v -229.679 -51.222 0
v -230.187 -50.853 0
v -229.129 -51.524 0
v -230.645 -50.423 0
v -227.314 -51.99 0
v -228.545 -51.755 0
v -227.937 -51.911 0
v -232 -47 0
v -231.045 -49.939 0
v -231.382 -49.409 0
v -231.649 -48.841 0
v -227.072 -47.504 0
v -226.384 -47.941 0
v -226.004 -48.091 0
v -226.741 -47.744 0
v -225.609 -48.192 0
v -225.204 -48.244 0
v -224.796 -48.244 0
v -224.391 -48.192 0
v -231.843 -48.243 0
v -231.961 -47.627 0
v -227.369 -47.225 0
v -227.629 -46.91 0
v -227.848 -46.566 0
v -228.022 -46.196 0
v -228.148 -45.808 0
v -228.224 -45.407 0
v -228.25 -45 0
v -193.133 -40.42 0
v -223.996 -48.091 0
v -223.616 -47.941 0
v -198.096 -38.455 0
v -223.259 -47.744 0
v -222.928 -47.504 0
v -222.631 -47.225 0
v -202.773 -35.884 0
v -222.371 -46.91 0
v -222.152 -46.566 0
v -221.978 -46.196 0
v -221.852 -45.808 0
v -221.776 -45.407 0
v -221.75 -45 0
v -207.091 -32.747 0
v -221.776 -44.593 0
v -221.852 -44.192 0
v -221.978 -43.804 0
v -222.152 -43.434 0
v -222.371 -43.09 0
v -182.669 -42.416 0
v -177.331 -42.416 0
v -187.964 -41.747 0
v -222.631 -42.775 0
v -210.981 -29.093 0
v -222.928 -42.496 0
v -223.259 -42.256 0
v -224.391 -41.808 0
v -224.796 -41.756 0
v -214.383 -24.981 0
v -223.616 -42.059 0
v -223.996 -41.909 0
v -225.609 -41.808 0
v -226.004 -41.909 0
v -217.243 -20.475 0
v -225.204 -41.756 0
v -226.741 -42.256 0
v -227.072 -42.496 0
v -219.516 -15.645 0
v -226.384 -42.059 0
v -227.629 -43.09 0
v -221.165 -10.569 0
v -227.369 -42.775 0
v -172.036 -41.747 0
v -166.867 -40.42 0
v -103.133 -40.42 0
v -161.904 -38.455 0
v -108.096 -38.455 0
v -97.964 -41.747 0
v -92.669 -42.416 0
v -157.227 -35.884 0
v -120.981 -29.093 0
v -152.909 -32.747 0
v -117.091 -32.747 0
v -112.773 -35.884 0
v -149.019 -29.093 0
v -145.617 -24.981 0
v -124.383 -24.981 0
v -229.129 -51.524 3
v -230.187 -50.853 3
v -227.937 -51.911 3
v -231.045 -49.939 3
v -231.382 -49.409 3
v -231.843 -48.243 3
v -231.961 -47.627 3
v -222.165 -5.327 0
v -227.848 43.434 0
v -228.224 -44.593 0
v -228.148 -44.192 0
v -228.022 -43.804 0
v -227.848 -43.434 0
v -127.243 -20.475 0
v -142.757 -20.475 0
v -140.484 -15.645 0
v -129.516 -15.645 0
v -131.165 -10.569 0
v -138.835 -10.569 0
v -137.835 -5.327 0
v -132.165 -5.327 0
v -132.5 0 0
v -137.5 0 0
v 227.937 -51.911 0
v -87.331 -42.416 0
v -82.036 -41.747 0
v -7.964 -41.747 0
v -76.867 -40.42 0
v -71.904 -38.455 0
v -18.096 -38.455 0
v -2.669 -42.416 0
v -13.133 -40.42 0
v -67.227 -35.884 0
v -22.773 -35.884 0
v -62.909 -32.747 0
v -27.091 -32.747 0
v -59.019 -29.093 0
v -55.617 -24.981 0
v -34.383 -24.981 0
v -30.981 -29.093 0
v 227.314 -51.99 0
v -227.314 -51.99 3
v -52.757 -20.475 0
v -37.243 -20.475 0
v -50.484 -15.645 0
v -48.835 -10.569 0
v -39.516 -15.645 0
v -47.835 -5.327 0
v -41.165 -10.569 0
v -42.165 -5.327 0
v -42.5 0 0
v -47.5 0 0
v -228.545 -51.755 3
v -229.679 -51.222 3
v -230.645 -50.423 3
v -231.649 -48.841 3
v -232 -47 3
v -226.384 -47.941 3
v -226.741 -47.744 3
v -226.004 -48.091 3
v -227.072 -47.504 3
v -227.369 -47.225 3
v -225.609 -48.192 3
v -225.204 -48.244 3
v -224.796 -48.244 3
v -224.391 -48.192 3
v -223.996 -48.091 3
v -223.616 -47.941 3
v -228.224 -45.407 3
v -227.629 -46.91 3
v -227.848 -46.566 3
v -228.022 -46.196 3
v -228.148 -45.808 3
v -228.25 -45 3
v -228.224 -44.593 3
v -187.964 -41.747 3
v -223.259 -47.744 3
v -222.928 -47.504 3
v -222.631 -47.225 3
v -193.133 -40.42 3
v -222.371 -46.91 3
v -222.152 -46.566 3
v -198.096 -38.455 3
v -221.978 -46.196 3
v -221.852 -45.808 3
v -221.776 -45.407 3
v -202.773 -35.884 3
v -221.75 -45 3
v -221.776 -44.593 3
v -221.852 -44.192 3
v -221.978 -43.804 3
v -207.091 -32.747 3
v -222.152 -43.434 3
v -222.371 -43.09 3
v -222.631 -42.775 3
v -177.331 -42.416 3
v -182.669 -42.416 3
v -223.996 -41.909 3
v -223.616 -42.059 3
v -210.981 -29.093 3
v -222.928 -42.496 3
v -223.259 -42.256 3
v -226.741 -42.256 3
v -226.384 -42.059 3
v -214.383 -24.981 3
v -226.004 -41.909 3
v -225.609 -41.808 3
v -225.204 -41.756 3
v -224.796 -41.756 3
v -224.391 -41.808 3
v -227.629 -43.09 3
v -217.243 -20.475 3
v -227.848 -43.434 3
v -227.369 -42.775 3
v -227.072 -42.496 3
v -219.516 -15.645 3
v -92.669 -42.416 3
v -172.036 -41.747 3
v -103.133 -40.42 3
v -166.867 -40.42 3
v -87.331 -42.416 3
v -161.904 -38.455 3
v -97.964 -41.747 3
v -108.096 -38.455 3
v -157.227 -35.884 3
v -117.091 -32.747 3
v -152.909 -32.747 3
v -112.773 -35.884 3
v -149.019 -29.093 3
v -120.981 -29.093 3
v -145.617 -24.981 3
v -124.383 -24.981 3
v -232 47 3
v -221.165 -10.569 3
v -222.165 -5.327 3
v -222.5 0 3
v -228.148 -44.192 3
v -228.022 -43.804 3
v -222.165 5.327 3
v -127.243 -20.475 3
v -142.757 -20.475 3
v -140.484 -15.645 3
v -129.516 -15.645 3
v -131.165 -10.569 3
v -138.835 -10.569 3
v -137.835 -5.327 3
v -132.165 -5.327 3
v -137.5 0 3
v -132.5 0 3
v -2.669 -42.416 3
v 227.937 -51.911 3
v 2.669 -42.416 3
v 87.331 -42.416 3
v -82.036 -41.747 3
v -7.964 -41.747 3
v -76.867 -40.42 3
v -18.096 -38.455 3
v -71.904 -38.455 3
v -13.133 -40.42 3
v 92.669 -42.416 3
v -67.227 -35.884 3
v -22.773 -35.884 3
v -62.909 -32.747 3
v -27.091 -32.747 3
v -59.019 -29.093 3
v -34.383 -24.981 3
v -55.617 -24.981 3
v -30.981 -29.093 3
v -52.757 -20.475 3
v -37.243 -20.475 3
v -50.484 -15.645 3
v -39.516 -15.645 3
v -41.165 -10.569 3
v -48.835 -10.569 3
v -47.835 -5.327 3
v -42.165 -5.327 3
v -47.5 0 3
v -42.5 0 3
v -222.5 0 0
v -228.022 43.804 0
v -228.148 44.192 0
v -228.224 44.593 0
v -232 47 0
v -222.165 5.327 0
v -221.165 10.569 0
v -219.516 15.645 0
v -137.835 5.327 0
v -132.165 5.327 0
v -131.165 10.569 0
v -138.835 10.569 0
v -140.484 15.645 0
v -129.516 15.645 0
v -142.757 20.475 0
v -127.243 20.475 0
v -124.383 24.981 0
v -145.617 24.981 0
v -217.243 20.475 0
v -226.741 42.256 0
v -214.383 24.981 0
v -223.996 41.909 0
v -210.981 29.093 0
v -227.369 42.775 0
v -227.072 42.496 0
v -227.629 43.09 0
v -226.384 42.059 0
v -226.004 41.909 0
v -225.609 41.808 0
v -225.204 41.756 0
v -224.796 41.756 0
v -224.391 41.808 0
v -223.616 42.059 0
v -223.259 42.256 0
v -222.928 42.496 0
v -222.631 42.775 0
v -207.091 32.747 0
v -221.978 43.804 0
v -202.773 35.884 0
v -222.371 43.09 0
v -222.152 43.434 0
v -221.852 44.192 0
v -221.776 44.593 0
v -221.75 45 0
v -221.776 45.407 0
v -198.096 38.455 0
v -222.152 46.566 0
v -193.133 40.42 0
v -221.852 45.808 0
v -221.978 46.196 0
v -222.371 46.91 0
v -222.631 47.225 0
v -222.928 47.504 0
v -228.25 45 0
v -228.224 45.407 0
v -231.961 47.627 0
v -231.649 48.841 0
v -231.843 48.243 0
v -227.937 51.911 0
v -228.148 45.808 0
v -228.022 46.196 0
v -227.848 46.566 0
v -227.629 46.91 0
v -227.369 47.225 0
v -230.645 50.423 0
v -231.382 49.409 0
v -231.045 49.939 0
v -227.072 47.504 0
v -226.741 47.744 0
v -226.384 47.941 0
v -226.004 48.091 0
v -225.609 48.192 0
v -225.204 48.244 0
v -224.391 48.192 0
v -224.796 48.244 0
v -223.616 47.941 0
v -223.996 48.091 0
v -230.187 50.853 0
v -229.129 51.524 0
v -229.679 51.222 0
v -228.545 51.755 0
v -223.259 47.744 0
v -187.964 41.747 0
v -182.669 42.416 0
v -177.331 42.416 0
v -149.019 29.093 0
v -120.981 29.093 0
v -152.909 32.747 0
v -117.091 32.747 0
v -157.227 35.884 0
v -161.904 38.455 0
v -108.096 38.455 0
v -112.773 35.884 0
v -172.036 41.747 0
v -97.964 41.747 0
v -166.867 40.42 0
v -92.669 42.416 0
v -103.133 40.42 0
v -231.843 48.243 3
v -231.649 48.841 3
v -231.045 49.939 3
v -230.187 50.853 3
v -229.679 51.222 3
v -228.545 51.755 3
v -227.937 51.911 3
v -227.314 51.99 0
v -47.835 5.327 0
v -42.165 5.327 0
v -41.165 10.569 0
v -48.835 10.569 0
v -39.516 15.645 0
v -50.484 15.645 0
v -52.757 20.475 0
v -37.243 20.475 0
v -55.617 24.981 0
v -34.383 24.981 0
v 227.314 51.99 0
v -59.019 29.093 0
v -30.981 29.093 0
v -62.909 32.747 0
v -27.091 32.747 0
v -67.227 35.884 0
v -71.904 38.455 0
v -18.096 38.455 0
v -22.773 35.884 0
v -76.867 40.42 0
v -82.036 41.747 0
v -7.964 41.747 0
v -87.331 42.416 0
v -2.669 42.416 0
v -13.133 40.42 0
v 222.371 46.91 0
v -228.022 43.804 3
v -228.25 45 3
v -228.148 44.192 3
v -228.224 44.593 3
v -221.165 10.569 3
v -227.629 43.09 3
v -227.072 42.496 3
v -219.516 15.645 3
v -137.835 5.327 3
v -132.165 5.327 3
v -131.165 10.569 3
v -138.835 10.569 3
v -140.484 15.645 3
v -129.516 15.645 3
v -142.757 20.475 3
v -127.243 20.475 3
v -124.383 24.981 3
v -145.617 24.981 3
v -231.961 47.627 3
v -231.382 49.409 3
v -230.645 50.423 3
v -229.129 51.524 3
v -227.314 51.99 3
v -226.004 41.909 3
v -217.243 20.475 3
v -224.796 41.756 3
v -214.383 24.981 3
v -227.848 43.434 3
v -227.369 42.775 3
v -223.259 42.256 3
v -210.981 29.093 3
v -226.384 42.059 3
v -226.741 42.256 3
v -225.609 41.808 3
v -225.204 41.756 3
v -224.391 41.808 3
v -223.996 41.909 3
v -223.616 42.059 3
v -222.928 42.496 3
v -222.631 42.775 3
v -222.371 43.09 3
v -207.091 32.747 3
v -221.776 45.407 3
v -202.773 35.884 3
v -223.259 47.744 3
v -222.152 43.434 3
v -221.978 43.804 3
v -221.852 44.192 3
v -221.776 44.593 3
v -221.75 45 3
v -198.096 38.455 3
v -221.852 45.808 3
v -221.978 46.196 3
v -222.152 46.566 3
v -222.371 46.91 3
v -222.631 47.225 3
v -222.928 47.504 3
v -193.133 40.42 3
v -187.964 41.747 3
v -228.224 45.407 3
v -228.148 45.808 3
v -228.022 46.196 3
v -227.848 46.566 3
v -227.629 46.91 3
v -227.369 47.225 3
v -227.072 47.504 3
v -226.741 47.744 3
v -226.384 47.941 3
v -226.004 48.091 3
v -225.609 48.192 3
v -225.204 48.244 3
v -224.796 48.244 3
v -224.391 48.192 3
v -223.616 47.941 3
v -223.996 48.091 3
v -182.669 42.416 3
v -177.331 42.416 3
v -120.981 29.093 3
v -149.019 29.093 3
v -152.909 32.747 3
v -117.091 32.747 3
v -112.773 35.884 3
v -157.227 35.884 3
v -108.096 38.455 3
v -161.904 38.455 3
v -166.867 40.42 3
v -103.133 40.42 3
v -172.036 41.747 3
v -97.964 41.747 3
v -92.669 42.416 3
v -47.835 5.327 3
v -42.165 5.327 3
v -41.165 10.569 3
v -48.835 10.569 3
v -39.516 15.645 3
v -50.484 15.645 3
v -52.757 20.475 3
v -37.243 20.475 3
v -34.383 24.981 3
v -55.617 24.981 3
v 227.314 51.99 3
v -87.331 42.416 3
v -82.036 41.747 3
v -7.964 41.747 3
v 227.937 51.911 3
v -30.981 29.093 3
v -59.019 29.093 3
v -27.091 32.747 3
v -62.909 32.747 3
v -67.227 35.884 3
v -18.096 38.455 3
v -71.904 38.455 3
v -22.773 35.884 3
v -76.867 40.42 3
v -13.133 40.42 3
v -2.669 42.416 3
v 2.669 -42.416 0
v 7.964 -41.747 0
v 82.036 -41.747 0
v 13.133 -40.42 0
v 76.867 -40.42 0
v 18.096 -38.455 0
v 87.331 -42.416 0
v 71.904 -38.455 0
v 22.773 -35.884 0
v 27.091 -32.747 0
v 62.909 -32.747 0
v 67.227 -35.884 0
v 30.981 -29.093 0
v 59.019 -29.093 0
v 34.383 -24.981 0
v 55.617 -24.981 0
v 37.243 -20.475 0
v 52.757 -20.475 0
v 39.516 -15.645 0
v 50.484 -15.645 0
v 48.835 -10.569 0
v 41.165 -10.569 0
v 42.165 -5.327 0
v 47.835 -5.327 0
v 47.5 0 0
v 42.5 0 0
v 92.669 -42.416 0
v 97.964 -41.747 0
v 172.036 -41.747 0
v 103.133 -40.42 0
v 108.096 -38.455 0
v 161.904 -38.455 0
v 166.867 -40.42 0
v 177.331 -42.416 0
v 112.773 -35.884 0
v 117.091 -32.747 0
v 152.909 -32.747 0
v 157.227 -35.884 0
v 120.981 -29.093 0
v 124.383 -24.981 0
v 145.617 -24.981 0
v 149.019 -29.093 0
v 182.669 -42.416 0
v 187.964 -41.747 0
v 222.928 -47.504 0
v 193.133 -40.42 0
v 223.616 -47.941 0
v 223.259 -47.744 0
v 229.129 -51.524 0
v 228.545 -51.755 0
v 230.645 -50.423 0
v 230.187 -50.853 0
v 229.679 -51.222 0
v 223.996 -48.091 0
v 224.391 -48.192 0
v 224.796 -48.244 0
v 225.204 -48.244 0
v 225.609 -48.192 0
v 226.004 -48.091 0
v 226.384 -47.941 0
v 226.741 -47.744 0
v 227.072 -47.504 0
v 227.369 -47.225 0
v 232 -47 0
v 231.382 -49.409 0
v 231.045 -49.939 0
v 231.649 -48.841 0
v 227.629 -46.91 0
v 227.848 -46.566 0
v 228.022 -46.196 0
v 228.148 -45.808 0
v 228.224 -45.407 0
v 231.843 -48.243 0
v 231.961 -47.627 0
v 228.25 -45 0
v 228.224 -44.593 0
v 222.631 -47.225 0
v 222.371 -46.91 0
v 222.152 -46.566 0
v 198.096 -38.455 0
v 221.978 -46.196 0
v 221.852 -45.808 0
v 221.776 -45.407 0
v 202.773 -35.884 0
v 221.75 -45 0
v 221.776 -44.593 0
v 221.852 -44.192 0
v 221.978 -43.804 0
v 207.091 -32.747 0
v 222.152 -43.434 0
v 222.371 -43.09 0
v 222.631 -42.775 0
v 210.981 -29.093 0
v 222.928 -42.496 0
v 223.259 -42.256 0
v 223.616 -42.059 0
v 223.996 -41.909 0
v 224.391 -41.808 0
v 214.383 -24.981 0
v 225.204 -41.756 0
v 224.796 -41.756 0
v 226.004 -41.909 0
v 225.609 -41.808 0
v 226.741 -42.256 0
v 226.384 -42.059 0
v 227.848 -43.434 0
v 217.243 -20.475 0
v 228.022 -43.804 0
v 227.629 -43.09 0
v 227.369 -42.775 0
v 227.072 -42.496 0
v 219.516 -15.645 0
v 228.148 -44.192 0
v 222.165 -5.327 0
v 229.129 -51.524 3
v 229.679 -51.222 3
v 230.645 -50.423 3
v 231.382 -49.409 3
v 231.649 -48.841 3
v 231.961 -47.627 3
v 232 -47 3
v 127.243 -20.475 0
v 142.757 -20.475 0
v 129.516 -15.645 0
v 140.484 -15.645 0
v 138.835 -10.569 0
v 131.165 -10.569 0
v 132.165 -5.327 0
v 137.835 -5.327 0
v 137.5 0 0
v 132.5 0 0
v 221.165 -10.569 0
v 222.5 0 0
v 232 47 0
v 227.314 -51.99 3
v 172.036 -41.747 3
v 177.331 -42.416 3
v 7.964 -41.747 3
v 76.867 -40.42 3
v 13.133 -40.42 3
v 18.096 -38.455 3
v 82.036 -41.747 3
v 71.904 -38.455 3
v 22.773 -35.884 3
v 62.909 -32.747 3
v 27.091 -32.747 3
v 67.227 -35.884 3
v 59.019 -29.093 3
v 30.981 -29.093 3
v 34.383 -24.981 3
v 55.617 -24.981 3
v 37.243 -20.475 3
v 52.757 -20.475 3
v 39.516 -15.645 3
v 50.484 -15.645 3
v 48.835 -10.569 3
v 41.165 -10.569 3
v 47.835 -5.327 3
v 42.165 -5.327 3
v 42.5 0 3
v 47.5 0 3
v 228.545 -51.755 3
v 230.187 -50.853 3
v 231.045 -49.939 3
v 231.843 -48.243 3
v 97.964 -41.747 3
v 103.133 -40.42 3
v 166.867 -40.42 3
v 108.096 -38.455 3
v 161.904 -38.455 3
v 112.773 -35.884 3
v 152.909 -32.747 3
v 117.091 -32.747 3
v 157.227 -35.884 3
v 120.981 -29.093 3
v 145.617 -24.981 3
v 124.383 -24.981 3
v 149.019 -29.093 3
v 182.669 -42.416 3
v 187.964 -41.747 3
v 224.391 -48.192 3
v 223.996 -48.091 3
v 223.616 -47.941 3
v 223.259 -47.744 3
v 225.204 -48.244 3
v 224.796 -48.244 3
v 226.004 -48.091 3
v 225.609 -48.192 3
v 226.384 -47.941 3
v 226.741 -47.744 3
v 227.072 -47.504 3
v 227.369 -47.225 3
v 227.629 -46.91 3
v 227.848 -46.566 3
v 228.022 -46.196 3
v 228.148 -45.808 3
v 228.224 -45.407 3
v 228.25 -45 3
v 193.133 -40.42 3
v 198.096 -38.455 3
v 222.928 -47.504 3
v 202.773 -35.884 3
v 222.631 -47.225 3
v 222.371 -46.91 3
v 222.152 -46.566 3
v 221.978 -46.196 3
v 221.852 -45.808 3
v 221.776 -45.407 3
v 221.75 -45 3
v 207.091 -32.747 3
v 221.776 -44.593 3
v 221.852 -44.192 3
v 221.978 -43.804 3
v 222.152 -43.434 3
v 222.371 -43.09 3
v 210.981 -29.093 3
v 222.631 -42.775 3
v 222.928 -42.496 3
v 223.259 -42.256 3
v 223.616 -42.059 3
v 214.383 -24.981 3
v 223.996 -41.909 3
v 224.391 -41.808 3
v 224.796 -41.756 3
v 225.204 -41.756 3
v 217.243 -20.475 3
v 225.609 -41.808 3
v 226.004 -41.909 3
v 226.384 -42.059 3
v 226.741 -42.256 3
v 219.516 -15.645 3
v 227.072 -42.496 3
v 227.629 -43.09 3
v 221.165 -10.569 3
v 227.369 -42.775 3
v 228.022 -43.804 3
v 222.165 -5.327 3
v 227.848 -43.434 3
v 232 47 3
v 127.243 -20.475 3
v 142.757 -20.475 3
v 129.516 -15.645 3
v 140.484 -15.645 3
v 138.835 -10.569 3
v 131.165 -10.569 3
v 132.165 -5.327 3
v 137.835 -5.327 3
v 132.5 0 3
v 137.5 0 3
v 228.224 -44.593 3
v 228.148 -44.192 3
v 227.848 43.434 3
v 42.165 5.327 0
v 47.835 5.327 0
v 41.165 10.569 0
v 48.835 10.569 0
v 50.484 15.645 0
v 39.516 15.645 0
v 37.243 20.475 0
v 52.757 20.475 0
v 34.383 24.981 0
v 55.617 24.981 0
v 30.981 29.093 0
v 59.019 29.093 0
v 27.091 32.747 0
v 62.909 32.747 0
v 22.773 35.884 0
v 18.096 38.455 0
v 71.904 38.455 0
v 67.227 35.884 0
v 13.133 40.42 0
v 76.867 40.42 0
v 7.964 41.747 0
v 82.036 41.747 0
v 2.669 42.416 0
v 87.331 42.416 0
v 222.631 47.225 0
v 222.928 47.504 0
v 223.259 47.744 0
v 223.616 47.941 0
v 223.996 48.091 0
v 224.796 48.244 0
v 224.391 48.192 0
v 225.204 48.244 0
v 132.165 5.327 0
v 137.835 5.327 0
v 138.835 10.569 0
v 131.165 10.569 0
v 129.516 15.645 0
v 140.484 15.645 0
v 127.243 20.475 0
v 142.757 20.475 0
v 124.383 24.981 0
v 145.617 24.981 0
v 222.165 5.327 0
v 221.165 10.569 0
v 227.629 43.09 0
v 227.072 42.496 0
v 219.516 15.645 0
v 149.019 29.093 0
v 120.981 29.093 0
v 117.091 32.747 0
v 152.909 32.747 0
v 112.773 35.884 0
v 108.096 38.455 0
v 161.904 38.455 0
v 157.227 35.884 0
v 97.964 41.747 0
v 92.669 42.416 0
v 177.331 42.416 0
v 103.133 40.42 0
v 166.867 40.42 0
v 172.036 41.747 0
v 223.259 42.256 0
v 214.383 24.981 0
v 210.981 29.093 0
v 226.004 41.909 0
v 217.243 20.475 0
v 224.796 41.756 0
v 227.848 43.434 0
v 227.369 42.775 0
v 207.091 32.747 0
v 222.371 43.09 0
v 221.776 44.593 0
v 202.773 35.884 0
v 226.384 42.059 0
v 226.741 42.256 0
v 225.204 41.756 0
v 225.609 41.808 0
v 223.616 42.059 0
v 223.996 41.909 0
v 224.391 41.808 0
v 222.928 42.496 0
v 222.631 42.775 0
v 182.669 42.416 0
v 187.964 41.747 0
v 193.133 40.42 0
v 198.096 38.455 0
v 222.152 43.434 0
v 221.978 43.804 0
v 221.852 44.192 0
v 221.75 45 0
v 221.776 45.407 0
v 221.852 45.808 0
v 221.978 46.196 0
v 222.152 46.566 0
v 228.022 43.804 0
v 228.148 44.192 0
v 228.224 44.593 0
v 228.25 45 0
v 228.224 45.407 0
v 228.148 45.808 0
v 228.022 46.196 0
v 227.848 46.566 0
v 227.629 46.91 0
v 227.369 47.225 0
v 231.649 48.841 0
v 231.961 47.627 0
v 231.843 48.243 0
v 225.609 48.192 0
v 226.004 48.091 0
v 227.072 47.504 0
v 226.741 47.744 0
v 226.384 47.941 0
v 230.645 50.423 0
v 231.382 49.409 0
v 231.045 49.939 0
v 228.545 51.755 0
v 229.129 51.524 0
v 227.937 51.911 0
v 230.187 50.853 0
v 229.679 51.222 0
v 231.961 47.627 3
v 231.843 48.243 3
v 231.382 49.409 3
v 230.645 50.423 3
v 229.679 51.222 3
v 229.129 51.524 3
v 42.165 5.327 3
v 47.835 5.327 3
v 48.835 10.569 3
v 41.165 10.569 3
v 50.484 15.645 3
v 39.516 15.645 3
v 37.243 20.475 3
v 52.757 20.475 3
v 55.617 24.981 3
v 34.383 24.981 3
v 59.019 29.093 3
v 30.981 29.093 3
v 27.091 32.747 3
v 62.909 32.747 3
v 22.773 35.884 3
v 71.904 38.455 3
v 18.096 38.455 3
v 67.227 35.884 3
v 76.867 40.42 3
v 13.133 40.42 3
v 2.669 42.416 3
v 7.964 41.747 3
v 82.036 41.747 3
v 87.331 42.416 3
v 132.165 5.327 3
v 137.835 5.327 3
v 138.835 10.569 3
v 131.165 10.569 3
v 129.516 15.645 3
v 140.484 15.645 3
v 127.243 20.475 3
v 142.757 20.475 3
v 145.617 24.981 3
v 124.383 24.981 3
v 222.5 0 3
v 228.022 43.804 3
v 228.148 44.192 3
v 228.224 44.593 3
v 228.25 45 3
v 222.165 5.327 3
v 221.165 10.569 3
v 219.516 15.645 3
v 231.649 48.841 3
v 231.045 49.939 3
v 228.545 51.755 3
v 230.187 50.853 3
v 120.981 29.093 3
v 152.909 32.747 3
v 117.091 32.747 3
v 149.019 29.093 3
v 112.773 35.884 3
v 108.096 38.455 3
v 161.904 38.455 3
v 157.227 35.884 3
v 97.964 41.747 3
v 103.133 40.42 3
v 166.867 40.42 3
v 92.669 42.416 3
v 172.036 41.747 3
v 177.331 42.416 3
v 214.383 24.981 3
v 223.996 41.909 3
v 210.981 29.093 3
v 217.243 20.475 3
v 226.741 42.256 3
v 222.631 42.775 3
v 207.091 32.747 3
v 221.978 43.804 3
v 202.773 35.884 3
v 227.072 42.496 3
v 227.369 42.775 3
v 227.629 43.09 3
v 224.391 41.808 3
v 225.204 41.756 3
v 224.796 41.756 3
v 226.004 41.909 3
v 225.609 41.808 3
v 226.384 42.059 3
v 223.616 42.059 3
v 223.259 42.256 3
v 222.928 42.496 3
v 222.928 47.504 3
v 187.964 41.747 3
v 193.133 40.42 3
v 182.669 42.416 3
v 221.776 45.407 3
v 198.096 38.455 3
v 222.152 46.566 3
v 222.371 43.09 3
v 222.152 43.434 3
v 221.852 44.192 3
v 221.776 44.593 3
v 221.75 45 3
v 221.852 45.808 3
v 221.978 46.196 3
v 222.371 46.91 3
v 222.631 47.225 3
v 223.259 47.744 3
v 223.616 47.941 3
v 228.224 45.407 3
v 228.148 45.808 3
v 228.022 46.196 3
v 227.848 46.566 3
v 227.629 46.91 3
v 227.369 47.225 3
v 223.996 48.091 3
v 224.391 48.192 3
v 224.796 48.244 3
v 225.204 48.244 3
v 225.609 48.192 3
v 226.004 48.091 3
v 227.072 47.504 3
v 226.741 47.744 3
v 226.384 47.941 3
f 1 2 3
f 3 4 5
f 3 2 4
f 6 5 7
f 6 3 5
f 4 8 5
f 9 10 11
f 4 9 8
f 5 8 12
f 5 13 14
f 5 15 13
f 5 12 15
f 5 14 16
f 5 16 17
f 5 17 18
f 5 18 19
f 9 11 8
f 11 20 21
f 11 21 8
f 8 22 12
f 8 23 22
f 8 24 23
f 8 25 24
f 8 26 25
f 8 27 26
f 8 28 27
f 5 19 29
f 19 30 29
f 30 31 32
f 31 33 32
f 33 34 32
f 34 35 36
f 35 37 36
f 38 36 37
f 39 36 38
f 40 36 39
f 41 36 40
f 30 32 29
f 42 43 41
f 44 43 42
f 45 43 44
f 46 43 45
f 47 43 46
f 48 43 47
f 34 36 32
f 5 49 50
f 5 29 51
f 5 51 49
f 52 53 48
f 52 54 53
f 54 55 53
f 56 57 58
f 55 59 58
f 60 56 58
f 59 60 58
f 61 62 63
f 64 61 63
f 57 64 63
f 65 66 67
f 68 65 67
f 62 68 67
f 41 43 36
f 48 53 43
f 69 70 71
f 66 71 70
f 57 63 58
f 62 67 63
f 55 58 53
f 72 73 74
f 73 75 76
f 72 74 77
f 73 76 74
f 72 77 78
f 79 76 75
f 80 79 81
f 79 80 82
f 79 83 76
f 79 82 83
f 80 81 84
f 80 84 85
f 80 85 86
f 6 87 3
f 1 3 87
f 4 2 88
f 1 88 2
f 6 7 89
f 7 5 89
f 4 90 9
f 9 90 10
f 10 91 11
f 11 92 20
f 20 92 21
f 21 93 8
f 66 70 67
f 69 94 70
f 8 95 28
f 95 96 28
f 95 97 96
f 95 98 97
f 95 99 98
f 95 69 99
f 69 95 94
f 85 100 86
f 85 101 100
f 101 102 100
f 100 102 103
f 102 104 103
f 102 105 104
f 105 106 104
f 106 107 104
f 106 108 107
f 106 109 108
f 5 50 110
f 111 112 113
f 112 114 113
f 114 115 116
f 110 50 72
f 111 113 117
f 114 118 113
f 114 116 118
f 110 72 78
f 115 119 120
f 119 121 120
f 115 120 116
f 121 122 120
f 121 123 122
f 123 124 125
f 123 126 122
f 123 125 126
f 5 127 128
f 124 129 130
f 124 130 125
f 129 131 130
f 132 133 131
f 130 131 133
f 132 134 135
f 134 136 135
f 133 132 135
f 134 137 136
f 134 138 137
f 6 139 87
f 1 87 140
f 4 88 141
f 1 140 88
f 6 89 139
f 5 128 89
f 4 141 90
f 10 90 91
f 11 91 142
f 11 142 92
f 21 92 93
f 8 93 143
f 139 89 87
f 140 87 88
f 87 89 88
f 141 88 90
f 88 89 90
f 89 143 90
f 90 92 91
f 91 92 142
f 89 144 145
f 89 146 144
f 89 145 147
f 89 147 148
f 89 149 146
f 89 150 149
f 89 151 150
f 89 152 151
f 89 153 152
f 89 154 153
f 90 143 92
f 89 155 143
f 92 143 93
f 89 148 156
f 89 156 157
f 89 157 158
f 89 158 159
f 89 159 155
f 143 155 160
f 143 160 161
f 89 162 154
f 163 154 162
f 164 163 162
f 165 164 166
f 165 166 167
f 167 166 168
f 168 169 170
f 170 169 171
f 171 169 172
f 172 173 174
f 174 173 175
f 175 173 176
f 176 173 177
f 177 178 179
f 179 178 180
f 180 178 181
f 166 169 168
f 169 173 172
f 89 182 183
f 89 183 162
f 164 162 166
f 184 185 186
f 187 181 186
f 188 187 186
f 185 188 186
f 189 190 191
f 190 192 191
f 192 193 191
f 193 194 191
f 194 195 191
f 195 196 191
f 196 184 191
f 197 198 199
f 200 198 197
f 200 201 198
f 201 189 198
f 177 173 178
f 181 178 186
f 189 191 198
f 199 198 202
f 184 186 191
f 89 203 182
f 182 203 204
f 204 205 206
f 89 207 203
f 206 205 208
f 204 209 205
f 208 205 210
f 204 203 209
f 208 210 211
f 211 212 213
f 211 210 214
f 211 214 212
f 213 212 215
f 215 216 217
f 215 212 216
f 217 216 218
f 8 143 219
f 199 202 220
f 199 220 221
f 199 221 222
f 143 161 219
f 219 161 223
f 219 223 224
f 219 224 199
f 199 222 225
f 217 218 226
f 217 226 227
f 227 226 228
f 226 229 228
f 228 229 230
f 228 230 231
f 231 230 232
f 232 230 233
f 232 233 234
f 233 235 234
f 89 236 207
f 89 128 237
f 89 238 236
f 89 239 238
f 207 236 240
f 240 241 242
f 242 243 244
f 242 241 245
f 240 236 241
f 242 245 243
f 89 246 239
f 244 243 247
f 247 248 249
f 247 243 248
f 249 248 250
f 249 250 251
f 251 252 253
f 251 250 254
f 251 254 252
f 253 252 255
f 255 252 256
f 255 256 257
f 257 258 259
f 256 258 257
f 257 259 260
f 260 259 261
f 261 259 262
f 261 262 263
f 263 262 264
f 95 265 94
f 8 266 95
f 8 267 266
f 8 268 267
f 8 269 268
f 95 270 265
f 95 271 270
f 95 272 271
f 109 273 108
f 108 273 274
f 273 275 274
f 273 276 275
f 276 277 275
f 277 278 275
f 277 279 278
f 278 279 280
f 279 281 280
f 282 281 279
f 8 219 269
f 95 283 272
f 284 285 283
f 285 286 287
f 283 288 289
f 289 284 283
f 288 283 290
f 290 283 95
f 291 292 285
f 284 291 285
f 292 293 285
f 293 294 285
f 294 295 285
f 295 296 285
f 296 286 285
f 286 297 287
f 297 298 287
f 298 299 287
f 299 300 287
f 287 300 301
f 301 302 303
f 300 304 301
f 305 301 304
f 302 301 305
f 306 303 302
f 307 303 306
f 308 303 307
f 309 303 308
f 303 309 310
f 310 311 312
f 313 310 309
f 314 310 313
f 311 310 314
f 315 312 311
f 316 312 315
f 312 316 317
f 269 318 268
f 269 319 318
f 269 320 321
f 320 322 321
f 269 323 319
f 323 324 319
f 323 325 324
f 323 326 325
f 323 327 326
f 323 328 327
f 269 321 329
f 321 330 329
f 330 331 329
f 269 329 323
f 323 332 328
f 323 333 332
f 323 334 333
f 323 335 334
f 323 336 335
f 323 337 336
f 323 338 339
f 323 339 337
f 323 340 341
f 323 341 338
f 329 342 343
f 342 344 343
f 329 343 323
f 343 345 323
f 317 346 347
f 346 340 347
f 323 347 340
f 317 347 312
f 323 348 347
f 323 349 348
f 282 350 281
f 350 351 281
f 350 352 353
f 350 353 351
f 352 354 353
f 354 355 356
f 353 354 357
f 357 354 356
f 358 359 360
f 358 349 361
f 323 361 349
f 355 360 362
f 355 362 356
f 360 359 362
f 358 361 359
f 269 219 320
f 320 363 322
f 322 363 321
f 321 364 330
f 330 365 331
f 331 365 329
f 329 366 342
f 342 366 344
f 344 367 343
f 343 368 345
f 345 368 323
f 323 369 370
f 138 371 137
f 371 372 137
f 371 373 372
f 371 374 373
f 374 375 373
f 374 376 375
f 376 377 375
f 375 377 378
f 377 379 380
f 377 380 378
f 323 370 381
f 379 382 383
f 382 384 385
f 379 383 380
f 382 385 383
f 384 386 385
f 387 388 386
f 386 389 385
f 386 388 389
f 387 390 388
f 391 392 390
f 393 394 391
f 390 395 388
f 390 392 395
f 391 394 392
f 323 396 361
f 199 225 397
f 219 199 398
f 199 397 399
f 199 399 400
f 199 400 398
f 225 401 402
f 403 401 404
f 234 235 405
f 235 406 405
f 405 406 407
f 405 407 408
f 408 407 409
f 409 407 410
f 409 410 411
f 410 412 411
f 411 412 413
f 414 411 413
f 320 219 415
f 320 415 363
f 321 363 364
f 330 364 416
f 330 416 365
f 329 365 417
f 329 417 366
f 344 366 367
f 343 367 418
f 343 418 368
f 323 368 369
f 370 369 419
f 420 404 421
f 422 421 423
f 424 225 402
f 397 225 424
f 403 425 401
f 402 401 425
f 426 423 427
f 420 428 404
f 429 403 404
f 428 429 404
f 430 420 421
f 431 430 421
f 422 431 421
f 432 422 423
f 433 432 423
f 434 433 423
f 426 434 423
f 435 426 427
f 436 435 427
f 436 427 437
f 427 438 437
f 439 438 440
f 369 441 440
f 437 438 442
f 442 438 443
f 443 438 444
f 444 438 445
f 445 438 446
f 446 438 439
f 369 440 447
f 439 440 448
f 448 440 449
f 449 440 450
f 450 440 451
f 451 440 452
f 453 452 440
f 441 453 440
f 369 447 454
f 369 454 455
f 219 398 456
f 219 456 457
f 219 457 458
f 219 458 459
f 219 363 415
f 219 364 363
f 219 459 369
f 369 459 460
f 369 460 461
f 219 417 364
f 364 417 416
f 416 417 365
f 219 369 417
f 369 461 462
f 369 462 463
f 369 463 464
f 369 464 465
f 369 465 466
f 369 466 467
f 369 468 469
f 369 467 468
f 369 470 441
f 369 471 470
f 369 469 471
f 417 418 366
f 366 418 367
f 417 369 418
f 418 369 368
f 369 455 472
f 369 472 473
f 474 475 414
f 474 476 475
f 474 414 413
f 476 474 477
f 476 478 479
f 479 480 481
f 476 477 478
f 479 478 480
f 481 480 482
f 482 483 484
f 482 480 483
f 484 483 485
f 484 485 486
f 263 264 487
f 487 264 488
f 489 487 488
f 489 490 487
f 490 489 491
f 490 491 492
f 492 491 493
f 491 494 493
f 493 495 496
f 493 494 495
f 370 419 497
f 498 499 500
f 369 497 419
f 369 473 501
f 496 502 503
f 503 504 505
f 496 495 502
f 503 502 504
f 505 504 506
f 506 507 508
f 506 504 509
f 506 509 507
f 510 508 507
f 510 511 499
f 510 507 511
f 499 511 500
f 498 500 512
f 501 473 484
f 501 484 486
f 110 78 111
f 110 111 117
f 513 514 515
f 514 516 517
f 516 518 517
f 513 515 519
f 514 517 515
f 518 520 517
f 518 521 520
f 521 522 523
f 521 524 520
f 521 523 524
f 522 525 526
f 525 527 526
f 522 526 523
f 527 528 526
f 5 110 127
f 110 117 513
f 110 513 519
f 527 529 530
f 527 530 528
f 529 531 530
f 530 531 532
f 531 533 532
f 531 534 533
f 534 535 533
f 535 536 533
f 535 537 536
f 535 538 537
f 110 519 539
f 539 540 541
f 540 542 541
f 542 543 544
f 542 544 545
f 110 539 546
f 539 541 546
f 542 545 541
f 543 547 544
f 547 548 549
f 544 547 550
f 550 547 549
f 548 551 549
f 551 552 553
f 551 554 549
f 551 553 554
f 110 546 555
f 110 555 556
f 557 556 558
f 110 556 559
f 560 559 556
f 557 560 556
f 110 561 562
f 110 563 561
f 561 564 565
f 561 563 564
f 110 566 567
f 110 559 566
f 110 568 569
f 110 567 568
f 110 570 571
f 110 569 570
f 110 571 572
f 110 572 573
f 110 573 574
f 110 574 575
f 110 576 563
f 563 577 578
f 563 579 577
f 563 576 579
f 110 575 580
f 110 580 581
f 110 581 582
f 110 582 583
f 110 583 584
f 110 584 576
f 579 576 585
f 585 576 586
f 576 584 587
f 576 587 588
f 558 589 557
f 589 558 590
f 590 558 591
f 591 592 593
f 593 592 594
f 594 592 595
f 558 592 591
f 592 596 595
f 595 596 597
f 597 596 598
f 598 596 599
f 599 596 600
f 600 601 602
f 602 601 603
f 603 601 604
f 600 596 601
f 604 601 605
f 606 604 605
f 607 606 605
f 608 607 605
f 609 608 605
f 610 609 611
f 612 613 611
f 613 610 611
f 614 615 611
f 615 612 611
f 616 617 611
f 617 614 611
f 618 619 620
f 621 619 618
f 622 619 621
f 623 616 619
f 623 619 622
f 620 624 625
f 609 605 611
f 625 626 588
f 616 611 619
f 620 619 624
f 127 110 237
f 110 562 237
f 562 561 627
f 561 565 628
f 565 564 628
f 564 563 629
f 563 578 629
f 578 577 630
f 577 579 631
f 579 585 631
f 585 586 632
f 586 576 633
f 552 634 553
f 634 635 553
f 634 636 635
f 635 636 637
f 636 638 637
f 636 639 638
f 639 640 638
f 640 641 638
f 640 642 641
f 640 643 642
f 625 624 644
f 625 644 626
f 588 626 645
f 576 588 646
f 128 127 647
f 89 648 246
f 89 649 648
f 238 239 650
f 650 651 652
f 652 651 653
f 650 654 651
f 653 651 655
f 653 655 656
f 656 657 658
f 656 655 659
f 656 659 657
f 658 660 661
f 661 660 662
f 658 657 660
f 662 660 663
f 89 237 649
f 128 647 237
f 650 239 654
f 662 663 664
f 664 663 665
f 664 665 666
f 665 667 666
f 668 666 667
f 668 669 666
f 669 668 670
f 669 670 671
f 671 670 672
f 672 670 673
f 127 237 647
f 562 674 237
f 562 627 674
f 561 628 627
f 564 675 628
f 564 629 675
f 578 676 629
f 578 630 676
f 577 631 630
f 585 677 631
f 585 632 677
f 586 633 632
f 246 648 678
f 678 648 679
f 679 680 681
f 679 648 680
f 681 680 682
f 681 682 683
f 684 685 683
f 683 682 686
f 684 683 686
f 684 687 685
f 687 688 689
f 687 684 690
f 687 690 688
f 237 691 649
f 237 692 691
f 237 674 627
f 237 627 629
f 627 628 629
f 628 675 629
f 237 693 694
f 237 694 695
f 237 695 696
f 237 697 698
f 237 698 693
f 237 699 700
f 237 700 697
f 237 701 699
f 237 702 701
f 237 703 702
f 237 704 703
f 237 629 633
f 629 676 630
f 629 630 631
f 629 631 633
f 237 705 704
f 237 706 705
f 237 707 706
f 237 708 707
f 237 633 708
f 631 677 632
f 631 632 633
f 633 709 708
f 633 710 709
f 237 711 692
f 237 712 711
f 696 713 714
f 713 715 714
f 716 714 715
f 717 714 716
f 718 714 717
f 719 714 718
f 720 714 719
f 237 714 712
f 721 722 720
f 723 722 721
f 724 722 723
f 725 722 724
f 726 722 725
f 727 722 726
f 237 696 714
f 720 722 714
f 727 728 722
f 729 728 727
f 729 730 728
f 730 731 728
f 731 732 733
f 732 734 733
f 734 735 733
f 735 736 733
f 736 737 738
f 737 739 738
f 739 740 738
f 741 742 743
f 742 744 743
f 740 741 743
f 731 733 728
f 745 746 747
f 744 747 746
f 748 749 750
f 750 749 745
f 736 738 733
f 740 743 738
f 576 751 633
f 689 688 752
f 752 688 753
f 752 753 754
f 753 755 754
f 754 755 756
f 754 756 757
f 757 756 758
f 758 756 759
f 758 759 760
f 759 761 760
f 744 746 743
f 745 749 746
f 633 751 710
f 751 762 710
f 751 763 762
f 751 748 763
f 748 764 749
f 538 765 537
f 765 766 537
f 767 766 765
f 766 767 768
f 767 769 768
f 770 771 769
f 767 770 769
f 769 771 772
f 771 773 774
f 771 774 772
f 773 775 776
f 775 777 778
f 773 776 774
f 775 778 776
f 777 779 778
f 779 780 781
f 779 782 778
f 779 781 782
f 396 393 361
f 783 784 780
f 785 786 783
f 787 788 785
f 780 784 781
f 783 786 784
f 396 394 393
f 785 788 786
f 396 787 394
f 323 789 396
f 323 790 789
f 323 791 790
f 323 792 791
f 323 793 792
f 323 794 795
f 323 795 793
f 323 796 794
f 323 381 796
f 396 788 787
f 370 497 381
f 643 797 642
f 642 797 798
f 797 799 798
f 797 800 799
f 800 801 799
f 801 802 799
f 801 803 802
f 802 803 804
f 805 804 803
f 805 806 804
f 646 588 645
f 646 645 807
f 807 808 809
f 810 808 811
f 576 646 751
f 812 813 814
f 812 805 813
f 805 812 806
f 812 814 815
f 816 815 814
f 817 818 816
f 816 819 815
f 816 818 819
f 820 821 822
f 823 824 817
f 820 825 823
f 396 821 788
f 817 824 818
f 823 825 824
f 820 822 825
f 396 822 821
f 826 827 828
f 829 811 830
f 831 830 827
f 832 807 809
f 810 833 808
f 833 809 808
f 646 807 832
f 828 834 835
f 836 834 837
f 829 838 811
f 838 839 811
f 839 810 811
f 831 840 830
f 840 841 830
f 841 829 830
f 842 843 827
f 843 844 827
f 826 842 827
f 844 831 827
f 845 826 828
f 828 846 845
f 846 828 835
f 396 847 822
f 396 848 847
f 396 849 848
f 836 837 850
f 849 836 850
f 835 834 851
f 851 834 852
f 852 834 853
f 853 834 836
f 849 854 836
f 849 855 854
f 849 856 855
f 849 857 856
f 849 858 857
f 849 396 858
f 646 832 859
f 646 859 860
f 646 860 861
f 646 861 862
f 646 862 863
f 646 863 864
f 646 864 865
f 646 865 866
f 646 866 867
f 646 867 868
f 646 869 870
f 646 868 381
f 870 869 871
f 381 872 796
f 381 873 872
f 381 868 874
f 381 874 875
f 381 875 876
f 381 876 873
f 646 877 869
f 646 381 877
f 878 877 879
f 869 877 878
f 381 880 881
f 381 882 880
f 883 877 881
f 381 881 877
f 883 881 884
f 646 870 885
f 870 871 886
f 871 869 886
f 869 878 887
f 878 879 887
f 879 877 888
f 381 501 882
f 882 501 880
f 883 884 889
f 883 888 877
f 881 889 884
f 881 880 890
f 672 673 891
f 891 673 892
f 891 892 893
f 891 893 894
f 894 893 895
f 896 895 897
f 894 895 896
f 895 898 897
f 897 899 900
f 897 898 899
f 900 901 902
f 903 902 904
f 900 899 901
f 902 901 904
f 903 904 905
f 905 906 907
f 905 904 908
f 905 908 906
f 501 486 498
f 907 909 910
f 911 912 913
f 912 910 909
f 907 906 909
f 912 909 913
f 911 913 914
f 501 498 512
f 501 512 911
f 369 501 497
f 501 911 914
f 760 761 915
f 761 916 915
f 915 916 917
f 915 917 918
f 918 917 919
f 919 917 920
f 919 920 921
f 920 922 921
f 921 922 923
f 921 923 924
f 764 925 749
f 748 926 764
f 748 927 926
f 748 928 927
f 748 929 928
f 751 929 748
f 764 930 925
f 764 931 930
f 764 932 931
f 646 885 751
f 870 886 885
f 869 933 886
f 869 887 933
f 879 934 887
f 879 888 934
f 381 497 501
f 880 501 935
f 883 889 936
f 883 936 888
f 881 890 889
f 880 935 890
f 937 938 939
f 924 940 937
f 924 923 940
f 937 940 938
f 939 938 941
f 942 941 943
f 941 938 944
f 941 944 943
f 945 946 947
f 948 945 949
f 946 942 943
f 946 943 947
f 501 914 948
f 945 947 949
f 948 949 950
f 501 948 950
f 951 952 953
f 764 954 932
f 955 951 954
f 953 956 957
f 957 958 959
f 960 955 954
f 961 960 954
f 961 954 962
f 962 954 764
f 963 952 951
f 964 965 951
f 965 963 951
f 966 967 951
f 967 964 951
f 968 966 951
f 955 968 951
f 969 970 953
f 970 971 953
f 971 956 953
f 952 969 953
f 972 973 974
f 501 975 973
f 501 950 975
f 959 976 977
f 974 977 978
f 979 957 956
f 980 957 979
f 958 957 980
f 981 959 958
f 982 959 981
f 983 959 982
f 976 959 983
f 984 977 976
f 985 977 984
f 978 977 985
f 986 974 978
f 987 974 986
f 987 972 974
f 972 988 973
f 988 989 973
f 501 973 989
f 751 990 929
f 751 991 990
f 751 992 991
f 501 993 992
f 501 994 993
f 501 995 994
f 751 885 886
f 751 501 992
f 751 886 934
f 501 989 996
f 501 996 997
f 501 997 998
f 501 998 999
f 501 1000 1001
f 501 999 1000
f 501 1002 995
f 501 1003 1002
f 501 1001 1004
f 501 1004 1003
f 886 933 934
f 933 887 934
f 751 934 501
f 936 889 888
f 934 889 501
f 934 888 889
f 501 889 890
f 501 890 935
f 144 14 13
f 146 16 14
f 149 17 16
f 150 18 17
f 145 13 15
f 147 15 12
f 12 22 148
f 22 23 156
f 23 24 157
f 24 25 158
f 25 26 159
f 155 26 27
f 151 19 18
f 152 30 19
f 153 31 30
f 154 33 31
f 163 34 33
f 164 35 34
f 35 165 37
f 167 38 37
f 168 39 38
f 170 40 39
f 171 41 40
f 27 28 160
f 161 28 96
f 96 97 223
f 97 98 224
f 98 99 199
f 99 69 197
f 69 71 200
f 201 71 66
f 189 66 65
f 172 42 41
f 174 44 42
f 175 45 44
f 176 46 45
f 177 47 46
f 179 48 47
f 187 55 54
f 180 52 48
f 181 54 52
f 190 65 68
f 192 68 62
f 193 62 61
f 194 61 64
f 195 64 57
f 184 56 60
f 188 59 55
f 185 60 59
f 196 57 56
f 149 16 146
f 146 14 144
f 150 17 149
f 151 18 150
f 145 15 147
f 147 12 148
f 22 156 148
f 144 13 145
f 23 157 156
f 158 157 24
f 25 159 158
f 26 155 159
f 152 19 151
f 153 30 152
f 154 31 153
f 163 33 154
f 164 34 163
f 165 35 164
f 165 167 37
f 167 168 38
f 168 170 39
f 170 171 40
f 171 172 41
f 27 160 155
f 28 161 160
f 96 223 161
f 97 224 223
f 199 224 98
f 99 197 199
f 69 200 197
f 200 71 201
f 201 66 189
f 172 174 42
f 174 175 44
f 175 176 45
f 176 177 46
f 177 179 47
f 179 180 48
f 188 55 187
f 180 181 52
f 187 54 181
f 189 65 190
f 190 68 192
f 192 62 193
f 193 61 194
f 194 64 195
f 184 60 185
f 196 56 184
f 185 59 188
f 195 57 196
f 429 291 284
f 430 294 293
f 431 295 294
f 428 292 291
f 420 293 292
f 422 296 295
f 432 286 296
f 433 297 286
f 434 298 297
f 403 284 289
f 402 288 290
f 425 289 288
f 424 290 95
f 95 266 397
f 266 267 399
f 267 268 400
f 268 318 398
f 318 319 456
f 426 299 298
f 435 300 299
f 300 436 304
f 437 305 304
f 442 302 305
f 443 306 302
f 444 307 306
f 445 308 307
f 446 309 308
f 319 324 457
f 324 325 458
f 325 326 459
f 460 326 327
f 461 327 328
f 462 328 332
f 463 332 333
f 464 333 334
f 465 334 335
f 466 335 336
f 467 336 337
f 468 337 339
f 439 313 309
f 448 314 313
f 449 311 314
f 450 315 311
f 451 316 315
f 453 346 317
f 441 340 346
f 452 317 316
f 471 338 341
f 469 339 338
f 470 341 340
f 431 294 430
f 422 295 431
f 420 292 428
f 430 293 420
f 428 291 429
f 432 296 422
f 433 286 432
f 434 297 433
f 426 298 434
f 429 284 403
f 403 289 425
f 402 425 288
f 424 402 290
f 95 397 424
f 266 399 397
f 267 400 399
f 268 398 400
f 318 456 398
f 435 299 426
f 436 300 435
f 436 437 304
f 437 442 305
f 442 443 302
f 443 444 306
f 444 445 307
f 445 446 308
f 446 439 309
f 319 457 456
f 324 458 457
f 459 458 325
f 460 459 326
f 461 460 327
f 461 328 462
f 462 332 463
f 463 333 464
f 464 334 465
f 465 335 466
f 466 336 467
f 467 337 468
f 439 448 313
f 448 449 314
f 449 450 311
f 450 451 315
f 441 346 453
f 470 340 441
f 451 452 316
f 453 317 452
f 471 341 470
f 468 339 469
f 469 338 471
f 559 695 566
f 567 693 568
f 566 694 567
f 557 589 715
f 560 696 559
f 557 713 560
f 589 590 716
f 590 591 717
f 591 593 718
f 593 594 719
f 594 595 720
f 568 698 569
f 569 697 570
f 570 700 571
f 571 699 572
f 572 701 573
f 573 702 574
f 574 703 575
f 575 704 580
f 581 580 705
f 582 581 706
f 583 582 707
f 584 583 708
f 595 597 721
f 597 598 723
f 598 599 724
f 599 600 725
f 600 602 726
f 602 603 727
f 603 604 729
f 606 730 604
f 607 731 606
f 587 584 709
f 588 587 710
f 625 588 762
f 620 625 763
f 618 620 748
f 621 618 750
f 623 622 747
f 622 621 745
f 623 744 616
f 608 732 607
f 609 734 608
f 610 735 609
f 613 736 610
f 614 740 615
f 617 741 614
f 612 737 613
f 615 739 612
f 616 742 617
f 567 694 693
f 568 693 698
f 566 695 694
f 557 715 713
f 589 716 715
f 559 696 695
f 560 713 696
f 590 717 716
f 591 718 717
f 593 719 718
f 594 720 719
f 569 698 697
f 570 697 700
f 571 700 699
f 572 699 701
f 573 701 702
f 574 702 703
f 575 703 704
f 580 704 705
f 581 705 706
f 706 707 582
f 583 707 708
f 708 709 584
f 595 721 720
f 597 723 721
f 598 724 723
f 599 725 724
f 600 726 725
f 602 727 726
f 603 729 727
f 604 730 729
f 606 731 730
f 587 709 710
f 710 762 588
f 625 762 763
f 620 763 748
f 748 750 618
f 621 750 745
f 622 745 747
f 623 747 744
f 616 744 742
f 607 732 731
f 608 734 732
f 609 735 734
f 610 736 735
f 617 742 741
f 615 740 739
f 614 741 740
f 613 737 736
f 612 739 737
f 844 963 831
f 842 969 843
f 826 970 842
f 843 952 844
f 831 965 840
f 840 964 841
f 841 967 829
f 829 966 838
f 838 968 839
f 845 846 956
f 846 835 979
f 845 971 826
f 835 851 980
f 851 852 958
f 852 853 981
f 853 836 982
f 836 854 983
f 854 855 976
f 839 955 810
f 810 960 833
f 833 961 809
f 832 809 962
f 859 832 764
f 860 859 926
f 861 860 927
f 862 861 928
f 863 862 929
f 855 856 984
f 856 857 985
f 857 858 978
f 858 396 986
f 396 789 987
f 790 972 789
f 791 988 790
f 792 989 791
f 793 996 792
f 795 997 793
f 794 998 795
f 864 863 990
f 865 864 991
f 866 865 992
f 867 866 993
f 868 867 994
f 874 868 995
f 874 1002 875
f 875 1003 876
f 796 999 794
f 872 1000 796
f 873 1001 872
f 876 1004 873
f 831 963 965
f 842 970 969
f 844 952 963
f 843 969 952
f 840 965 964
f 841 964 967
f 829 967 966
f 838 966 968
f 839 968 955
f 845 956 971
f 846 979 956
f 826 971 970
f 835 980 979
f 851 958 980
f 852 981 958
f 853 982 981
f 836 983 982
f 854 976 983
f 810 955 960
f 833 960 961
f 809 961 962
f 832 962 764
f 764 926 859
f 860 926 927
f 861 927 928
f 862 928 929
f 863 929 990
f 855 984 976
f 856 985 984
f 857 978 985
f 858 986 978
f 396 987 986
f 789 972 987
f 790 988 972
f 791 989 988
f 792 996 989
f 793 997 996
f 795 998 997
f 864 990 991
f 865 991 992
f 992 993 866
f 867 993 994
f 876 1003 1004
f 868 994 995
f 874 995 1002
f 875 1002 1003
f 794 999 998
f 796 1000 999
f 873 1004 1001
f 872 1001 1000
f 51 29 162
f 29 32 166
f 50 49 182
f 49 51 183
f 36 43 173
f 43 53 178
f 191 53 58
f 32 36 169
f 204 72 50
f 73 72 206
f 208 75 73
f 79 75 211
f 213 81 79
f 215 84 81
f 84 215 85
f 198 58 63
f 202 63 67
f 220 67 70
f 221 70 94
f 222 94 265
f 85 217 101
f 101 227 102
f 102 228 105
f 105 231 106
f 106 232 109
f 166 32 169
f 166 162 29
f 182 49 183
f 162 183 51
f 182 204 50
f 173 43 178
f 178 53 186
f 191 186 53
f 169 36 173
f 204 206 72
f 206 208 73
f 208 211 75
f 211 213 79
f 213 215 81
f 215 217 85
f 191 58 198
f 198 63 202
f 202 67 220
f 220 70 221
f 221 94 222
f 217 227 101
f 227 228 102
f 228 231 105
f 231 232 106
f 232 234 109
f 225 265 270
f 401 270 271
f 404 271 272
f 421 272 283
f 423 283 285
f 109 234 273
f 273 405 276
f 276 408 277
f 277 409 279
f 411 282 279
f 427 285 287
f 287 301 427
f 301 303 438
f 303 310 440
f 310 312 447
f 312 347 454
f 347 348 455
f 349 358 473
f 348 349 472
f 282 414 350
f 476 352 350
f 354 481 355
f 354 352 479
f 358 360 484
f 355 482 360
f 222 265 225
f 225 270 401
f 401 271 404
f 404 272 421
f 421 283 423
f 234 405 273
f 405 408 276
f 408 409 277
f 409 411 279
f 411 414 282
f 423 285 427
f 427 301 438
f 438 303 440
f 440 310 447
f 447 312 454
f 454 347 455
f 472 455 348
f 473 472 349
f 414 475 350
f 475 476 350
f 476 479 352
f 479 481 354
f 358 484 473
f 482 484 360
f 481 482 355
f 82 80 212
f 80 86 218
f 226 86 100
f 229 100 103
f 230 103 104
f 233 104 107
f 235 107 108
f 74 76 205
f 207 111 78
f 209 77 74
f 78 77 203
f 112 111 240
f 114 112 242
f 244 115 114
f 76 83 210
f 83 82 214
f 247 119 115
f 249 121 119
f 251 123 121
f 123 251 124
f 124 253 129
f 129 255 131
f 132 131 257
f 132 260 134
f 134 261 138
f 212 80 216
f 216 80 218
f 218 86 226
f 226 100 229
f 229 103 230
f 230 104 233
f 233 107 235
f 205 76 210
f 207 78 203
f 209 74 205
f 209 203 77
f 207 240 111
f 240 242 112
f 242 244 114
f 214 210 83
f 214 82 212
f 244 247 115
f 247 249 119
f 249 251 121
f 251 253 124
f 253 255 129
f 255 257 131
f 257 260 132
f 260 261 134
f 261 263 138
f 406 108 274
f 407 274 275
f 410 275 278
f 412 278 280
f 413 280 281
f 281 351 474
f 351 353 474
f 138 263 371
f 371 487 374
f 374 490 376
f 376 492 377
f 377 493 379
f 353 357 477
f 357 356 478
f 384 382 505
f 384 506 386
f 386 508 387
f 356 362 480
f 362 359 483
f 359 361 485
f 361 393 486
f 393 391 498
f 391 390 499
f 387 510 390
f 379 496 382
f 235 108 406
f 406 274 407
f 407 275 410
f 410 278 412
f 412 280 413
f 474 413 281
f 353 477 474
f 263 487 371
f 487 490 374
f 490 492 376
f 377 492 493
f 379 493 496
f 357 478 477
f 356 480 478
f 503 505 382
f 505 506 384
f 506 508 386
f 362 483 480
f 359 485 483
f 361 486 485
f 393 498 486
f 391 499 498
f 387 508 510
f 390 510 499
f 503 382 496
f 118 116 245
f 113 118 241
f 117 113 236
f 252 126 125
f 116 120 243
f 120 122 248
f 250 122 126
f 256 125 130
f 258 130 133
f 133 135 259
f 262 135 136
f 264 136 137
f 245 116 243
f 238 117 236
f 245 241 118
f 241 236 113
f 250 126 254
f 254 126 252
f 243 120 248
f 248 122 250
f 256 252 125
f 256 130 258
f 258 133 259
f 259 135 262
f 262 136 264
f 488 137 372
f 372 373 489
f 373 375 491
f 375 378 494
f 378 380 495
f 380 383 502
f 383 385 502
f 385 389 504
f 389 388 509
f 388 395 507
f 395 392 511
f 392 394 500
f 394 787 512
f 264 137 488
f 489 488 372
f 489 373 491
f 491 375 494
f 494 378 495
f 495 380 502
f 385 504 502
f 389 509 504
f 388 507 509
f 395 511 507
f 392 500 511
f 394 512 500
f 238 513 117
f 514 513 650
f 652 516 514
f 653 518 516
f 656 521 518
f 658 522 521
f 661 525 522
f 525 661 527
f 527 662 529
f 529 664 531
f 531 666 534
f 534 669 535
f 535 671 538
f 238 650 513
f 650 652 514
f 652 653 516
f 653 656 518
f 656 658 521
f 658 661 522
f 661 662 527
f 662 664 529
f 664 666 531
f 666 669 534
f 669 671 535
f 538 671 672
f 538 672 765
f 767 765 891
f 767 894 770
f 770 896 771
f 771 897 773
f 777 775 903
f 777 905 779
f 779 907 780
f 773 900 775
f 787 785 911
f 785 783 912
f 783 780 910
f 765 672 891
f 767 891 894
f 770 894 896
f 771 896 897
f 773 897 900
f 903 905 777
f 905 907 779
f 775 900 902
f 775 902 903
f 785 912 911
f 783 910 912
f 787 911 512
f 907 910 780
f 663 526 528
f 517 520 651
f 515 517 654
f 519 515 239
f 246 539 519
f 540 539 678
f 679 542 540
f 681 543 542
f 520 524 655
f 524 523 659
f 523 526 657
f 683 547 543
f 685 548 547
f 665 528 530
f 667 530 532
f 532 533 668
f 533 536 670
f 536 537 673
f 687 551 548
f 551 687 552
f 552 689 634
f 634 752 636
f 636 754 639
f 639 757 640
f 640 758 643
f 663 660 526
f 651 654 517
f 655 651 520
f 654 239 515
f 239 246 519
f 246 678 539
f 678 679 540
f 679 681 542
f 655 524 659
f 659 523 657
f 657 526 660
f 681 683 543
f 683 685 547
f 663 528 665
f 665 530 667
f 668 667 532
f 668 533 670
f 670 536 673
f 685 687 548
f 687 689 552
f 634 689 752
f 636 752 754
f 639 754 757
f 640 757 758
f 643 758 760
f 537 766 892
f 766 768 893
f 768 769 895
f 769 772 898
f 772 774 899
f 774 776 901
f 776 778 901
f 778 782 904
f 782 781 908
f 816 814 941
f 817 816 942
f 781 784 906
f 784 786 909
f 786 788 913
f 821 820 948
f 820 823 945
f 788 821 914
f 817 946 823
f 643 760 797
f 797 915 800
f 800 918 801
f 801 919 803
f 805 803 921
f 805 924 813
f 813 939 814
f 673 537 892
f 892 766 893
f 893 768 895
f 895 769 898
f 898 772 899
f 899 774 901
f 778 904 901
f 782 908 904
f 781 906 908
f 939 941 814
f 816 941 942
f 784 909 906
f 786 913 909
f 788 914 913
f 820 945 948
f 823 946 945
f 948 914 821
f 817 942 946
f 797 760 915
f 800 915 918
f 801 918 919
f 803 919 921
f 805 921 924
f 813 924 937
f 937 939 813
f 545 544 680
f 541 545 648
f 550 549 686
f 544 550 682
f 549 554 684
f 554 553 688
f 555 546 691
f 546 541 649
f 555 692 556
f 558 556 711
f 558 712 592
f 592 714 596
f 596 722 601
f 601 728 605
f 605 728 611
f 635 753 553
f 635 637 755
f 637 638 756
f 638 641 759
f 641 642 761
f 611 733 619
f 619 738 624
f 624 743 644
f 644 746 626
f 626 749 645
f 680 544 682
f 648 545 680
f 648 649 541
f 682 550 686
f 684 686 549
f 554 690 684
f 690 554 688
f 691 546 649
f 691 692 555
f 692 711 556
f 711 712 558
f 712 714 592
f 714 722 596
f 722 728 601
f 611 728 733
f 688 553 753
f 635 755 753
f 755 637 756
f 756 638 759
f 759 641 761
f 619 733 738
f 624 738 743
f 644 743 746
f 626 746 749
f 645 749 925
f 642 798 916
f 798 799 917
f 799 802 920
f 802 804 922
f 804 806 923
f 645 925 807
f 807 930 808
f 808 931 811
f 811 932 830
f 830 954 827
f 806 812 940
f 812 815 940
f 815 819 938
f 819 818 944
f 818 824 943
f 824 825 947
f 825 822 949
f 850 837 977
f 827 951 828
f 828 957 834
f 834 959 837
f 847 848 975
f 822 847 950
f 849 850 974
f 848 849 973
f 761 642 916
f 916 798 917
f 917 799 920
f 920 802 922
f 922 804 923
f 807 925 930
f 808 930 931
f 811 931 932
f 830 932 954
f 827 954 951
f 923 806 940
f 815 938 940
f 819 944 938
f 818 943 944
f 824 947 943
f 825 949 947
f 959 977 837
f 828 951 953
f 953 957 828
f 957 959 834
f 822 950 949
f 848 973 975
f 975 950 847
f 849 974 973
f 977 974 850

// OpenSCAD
$fn = 50;

difference() {
	union() {
		hull() {
			translate(v = [-227.0, 47.0, 0]) {
				cylinder(h = 3, r = 5);
			}
			translate(v = [227.0, 47.0, 0]) {
				cylinder(h = 3, r = 5);
			}
			translate(v = [-227.0, -47.0, 0]) {
				cylinder(h = 3, r = 5);
			}
			translate(v = [227.0, -47.0, 0]) {
				cylinder(h = 3, r = 5);
			}
		}
	}
	union() {
		translate(v = [-225.0, -45.0, -100.0]) {
			cylinder(h = 200, r = 3.25);
		}
		translate(v = [-225.0, 45.0, -100.0]) {
			cylinder(h = 200, r = 3.25);
		}
		translate(v = [225.0, -45.0, -100.0]) {
			cylinder(h = 200, r = 3.25);
		}
		translate(v = [225.0, 45.0, -100.0]) {
			cylinder(h = 200, r = 3.25);
		}
		translate(v = [-225.0, -45.0, -100.0]) {
			cylinder(h = 200, r = 1.8);
		}
		translate(v = [-225.0, 45.0, -100.0]) {
			cylinder(h = 200, r = 1.8);
		}
		translate(v = [225.0, -45.0, -100.0]) {
			cylinder(h = 200, r = 1.8);
		}
		translate(v = [225.0, 45.0, -100.0]) {
			cylinder(h = 200, r = 1.8);
		}
		translate(v = [-180.0, 0, 0.0]) {
			cylinder(h = 3, r = 42.5);
		}
		translate(v = [-90.0, 0, 0.0]) {
			cylinder(h = 3, r = 42.5);
		}
		cylinder(h = 3, r = 42.5);
		translate(v = [90.0, 0, 0.0]) {
			cylinder(h = 3, r = 42.5);
		}
		translate(v = [180.0, 0, 0.0]) {
			cylinder(h = 3, r = 42.5);
		}
	}
}
